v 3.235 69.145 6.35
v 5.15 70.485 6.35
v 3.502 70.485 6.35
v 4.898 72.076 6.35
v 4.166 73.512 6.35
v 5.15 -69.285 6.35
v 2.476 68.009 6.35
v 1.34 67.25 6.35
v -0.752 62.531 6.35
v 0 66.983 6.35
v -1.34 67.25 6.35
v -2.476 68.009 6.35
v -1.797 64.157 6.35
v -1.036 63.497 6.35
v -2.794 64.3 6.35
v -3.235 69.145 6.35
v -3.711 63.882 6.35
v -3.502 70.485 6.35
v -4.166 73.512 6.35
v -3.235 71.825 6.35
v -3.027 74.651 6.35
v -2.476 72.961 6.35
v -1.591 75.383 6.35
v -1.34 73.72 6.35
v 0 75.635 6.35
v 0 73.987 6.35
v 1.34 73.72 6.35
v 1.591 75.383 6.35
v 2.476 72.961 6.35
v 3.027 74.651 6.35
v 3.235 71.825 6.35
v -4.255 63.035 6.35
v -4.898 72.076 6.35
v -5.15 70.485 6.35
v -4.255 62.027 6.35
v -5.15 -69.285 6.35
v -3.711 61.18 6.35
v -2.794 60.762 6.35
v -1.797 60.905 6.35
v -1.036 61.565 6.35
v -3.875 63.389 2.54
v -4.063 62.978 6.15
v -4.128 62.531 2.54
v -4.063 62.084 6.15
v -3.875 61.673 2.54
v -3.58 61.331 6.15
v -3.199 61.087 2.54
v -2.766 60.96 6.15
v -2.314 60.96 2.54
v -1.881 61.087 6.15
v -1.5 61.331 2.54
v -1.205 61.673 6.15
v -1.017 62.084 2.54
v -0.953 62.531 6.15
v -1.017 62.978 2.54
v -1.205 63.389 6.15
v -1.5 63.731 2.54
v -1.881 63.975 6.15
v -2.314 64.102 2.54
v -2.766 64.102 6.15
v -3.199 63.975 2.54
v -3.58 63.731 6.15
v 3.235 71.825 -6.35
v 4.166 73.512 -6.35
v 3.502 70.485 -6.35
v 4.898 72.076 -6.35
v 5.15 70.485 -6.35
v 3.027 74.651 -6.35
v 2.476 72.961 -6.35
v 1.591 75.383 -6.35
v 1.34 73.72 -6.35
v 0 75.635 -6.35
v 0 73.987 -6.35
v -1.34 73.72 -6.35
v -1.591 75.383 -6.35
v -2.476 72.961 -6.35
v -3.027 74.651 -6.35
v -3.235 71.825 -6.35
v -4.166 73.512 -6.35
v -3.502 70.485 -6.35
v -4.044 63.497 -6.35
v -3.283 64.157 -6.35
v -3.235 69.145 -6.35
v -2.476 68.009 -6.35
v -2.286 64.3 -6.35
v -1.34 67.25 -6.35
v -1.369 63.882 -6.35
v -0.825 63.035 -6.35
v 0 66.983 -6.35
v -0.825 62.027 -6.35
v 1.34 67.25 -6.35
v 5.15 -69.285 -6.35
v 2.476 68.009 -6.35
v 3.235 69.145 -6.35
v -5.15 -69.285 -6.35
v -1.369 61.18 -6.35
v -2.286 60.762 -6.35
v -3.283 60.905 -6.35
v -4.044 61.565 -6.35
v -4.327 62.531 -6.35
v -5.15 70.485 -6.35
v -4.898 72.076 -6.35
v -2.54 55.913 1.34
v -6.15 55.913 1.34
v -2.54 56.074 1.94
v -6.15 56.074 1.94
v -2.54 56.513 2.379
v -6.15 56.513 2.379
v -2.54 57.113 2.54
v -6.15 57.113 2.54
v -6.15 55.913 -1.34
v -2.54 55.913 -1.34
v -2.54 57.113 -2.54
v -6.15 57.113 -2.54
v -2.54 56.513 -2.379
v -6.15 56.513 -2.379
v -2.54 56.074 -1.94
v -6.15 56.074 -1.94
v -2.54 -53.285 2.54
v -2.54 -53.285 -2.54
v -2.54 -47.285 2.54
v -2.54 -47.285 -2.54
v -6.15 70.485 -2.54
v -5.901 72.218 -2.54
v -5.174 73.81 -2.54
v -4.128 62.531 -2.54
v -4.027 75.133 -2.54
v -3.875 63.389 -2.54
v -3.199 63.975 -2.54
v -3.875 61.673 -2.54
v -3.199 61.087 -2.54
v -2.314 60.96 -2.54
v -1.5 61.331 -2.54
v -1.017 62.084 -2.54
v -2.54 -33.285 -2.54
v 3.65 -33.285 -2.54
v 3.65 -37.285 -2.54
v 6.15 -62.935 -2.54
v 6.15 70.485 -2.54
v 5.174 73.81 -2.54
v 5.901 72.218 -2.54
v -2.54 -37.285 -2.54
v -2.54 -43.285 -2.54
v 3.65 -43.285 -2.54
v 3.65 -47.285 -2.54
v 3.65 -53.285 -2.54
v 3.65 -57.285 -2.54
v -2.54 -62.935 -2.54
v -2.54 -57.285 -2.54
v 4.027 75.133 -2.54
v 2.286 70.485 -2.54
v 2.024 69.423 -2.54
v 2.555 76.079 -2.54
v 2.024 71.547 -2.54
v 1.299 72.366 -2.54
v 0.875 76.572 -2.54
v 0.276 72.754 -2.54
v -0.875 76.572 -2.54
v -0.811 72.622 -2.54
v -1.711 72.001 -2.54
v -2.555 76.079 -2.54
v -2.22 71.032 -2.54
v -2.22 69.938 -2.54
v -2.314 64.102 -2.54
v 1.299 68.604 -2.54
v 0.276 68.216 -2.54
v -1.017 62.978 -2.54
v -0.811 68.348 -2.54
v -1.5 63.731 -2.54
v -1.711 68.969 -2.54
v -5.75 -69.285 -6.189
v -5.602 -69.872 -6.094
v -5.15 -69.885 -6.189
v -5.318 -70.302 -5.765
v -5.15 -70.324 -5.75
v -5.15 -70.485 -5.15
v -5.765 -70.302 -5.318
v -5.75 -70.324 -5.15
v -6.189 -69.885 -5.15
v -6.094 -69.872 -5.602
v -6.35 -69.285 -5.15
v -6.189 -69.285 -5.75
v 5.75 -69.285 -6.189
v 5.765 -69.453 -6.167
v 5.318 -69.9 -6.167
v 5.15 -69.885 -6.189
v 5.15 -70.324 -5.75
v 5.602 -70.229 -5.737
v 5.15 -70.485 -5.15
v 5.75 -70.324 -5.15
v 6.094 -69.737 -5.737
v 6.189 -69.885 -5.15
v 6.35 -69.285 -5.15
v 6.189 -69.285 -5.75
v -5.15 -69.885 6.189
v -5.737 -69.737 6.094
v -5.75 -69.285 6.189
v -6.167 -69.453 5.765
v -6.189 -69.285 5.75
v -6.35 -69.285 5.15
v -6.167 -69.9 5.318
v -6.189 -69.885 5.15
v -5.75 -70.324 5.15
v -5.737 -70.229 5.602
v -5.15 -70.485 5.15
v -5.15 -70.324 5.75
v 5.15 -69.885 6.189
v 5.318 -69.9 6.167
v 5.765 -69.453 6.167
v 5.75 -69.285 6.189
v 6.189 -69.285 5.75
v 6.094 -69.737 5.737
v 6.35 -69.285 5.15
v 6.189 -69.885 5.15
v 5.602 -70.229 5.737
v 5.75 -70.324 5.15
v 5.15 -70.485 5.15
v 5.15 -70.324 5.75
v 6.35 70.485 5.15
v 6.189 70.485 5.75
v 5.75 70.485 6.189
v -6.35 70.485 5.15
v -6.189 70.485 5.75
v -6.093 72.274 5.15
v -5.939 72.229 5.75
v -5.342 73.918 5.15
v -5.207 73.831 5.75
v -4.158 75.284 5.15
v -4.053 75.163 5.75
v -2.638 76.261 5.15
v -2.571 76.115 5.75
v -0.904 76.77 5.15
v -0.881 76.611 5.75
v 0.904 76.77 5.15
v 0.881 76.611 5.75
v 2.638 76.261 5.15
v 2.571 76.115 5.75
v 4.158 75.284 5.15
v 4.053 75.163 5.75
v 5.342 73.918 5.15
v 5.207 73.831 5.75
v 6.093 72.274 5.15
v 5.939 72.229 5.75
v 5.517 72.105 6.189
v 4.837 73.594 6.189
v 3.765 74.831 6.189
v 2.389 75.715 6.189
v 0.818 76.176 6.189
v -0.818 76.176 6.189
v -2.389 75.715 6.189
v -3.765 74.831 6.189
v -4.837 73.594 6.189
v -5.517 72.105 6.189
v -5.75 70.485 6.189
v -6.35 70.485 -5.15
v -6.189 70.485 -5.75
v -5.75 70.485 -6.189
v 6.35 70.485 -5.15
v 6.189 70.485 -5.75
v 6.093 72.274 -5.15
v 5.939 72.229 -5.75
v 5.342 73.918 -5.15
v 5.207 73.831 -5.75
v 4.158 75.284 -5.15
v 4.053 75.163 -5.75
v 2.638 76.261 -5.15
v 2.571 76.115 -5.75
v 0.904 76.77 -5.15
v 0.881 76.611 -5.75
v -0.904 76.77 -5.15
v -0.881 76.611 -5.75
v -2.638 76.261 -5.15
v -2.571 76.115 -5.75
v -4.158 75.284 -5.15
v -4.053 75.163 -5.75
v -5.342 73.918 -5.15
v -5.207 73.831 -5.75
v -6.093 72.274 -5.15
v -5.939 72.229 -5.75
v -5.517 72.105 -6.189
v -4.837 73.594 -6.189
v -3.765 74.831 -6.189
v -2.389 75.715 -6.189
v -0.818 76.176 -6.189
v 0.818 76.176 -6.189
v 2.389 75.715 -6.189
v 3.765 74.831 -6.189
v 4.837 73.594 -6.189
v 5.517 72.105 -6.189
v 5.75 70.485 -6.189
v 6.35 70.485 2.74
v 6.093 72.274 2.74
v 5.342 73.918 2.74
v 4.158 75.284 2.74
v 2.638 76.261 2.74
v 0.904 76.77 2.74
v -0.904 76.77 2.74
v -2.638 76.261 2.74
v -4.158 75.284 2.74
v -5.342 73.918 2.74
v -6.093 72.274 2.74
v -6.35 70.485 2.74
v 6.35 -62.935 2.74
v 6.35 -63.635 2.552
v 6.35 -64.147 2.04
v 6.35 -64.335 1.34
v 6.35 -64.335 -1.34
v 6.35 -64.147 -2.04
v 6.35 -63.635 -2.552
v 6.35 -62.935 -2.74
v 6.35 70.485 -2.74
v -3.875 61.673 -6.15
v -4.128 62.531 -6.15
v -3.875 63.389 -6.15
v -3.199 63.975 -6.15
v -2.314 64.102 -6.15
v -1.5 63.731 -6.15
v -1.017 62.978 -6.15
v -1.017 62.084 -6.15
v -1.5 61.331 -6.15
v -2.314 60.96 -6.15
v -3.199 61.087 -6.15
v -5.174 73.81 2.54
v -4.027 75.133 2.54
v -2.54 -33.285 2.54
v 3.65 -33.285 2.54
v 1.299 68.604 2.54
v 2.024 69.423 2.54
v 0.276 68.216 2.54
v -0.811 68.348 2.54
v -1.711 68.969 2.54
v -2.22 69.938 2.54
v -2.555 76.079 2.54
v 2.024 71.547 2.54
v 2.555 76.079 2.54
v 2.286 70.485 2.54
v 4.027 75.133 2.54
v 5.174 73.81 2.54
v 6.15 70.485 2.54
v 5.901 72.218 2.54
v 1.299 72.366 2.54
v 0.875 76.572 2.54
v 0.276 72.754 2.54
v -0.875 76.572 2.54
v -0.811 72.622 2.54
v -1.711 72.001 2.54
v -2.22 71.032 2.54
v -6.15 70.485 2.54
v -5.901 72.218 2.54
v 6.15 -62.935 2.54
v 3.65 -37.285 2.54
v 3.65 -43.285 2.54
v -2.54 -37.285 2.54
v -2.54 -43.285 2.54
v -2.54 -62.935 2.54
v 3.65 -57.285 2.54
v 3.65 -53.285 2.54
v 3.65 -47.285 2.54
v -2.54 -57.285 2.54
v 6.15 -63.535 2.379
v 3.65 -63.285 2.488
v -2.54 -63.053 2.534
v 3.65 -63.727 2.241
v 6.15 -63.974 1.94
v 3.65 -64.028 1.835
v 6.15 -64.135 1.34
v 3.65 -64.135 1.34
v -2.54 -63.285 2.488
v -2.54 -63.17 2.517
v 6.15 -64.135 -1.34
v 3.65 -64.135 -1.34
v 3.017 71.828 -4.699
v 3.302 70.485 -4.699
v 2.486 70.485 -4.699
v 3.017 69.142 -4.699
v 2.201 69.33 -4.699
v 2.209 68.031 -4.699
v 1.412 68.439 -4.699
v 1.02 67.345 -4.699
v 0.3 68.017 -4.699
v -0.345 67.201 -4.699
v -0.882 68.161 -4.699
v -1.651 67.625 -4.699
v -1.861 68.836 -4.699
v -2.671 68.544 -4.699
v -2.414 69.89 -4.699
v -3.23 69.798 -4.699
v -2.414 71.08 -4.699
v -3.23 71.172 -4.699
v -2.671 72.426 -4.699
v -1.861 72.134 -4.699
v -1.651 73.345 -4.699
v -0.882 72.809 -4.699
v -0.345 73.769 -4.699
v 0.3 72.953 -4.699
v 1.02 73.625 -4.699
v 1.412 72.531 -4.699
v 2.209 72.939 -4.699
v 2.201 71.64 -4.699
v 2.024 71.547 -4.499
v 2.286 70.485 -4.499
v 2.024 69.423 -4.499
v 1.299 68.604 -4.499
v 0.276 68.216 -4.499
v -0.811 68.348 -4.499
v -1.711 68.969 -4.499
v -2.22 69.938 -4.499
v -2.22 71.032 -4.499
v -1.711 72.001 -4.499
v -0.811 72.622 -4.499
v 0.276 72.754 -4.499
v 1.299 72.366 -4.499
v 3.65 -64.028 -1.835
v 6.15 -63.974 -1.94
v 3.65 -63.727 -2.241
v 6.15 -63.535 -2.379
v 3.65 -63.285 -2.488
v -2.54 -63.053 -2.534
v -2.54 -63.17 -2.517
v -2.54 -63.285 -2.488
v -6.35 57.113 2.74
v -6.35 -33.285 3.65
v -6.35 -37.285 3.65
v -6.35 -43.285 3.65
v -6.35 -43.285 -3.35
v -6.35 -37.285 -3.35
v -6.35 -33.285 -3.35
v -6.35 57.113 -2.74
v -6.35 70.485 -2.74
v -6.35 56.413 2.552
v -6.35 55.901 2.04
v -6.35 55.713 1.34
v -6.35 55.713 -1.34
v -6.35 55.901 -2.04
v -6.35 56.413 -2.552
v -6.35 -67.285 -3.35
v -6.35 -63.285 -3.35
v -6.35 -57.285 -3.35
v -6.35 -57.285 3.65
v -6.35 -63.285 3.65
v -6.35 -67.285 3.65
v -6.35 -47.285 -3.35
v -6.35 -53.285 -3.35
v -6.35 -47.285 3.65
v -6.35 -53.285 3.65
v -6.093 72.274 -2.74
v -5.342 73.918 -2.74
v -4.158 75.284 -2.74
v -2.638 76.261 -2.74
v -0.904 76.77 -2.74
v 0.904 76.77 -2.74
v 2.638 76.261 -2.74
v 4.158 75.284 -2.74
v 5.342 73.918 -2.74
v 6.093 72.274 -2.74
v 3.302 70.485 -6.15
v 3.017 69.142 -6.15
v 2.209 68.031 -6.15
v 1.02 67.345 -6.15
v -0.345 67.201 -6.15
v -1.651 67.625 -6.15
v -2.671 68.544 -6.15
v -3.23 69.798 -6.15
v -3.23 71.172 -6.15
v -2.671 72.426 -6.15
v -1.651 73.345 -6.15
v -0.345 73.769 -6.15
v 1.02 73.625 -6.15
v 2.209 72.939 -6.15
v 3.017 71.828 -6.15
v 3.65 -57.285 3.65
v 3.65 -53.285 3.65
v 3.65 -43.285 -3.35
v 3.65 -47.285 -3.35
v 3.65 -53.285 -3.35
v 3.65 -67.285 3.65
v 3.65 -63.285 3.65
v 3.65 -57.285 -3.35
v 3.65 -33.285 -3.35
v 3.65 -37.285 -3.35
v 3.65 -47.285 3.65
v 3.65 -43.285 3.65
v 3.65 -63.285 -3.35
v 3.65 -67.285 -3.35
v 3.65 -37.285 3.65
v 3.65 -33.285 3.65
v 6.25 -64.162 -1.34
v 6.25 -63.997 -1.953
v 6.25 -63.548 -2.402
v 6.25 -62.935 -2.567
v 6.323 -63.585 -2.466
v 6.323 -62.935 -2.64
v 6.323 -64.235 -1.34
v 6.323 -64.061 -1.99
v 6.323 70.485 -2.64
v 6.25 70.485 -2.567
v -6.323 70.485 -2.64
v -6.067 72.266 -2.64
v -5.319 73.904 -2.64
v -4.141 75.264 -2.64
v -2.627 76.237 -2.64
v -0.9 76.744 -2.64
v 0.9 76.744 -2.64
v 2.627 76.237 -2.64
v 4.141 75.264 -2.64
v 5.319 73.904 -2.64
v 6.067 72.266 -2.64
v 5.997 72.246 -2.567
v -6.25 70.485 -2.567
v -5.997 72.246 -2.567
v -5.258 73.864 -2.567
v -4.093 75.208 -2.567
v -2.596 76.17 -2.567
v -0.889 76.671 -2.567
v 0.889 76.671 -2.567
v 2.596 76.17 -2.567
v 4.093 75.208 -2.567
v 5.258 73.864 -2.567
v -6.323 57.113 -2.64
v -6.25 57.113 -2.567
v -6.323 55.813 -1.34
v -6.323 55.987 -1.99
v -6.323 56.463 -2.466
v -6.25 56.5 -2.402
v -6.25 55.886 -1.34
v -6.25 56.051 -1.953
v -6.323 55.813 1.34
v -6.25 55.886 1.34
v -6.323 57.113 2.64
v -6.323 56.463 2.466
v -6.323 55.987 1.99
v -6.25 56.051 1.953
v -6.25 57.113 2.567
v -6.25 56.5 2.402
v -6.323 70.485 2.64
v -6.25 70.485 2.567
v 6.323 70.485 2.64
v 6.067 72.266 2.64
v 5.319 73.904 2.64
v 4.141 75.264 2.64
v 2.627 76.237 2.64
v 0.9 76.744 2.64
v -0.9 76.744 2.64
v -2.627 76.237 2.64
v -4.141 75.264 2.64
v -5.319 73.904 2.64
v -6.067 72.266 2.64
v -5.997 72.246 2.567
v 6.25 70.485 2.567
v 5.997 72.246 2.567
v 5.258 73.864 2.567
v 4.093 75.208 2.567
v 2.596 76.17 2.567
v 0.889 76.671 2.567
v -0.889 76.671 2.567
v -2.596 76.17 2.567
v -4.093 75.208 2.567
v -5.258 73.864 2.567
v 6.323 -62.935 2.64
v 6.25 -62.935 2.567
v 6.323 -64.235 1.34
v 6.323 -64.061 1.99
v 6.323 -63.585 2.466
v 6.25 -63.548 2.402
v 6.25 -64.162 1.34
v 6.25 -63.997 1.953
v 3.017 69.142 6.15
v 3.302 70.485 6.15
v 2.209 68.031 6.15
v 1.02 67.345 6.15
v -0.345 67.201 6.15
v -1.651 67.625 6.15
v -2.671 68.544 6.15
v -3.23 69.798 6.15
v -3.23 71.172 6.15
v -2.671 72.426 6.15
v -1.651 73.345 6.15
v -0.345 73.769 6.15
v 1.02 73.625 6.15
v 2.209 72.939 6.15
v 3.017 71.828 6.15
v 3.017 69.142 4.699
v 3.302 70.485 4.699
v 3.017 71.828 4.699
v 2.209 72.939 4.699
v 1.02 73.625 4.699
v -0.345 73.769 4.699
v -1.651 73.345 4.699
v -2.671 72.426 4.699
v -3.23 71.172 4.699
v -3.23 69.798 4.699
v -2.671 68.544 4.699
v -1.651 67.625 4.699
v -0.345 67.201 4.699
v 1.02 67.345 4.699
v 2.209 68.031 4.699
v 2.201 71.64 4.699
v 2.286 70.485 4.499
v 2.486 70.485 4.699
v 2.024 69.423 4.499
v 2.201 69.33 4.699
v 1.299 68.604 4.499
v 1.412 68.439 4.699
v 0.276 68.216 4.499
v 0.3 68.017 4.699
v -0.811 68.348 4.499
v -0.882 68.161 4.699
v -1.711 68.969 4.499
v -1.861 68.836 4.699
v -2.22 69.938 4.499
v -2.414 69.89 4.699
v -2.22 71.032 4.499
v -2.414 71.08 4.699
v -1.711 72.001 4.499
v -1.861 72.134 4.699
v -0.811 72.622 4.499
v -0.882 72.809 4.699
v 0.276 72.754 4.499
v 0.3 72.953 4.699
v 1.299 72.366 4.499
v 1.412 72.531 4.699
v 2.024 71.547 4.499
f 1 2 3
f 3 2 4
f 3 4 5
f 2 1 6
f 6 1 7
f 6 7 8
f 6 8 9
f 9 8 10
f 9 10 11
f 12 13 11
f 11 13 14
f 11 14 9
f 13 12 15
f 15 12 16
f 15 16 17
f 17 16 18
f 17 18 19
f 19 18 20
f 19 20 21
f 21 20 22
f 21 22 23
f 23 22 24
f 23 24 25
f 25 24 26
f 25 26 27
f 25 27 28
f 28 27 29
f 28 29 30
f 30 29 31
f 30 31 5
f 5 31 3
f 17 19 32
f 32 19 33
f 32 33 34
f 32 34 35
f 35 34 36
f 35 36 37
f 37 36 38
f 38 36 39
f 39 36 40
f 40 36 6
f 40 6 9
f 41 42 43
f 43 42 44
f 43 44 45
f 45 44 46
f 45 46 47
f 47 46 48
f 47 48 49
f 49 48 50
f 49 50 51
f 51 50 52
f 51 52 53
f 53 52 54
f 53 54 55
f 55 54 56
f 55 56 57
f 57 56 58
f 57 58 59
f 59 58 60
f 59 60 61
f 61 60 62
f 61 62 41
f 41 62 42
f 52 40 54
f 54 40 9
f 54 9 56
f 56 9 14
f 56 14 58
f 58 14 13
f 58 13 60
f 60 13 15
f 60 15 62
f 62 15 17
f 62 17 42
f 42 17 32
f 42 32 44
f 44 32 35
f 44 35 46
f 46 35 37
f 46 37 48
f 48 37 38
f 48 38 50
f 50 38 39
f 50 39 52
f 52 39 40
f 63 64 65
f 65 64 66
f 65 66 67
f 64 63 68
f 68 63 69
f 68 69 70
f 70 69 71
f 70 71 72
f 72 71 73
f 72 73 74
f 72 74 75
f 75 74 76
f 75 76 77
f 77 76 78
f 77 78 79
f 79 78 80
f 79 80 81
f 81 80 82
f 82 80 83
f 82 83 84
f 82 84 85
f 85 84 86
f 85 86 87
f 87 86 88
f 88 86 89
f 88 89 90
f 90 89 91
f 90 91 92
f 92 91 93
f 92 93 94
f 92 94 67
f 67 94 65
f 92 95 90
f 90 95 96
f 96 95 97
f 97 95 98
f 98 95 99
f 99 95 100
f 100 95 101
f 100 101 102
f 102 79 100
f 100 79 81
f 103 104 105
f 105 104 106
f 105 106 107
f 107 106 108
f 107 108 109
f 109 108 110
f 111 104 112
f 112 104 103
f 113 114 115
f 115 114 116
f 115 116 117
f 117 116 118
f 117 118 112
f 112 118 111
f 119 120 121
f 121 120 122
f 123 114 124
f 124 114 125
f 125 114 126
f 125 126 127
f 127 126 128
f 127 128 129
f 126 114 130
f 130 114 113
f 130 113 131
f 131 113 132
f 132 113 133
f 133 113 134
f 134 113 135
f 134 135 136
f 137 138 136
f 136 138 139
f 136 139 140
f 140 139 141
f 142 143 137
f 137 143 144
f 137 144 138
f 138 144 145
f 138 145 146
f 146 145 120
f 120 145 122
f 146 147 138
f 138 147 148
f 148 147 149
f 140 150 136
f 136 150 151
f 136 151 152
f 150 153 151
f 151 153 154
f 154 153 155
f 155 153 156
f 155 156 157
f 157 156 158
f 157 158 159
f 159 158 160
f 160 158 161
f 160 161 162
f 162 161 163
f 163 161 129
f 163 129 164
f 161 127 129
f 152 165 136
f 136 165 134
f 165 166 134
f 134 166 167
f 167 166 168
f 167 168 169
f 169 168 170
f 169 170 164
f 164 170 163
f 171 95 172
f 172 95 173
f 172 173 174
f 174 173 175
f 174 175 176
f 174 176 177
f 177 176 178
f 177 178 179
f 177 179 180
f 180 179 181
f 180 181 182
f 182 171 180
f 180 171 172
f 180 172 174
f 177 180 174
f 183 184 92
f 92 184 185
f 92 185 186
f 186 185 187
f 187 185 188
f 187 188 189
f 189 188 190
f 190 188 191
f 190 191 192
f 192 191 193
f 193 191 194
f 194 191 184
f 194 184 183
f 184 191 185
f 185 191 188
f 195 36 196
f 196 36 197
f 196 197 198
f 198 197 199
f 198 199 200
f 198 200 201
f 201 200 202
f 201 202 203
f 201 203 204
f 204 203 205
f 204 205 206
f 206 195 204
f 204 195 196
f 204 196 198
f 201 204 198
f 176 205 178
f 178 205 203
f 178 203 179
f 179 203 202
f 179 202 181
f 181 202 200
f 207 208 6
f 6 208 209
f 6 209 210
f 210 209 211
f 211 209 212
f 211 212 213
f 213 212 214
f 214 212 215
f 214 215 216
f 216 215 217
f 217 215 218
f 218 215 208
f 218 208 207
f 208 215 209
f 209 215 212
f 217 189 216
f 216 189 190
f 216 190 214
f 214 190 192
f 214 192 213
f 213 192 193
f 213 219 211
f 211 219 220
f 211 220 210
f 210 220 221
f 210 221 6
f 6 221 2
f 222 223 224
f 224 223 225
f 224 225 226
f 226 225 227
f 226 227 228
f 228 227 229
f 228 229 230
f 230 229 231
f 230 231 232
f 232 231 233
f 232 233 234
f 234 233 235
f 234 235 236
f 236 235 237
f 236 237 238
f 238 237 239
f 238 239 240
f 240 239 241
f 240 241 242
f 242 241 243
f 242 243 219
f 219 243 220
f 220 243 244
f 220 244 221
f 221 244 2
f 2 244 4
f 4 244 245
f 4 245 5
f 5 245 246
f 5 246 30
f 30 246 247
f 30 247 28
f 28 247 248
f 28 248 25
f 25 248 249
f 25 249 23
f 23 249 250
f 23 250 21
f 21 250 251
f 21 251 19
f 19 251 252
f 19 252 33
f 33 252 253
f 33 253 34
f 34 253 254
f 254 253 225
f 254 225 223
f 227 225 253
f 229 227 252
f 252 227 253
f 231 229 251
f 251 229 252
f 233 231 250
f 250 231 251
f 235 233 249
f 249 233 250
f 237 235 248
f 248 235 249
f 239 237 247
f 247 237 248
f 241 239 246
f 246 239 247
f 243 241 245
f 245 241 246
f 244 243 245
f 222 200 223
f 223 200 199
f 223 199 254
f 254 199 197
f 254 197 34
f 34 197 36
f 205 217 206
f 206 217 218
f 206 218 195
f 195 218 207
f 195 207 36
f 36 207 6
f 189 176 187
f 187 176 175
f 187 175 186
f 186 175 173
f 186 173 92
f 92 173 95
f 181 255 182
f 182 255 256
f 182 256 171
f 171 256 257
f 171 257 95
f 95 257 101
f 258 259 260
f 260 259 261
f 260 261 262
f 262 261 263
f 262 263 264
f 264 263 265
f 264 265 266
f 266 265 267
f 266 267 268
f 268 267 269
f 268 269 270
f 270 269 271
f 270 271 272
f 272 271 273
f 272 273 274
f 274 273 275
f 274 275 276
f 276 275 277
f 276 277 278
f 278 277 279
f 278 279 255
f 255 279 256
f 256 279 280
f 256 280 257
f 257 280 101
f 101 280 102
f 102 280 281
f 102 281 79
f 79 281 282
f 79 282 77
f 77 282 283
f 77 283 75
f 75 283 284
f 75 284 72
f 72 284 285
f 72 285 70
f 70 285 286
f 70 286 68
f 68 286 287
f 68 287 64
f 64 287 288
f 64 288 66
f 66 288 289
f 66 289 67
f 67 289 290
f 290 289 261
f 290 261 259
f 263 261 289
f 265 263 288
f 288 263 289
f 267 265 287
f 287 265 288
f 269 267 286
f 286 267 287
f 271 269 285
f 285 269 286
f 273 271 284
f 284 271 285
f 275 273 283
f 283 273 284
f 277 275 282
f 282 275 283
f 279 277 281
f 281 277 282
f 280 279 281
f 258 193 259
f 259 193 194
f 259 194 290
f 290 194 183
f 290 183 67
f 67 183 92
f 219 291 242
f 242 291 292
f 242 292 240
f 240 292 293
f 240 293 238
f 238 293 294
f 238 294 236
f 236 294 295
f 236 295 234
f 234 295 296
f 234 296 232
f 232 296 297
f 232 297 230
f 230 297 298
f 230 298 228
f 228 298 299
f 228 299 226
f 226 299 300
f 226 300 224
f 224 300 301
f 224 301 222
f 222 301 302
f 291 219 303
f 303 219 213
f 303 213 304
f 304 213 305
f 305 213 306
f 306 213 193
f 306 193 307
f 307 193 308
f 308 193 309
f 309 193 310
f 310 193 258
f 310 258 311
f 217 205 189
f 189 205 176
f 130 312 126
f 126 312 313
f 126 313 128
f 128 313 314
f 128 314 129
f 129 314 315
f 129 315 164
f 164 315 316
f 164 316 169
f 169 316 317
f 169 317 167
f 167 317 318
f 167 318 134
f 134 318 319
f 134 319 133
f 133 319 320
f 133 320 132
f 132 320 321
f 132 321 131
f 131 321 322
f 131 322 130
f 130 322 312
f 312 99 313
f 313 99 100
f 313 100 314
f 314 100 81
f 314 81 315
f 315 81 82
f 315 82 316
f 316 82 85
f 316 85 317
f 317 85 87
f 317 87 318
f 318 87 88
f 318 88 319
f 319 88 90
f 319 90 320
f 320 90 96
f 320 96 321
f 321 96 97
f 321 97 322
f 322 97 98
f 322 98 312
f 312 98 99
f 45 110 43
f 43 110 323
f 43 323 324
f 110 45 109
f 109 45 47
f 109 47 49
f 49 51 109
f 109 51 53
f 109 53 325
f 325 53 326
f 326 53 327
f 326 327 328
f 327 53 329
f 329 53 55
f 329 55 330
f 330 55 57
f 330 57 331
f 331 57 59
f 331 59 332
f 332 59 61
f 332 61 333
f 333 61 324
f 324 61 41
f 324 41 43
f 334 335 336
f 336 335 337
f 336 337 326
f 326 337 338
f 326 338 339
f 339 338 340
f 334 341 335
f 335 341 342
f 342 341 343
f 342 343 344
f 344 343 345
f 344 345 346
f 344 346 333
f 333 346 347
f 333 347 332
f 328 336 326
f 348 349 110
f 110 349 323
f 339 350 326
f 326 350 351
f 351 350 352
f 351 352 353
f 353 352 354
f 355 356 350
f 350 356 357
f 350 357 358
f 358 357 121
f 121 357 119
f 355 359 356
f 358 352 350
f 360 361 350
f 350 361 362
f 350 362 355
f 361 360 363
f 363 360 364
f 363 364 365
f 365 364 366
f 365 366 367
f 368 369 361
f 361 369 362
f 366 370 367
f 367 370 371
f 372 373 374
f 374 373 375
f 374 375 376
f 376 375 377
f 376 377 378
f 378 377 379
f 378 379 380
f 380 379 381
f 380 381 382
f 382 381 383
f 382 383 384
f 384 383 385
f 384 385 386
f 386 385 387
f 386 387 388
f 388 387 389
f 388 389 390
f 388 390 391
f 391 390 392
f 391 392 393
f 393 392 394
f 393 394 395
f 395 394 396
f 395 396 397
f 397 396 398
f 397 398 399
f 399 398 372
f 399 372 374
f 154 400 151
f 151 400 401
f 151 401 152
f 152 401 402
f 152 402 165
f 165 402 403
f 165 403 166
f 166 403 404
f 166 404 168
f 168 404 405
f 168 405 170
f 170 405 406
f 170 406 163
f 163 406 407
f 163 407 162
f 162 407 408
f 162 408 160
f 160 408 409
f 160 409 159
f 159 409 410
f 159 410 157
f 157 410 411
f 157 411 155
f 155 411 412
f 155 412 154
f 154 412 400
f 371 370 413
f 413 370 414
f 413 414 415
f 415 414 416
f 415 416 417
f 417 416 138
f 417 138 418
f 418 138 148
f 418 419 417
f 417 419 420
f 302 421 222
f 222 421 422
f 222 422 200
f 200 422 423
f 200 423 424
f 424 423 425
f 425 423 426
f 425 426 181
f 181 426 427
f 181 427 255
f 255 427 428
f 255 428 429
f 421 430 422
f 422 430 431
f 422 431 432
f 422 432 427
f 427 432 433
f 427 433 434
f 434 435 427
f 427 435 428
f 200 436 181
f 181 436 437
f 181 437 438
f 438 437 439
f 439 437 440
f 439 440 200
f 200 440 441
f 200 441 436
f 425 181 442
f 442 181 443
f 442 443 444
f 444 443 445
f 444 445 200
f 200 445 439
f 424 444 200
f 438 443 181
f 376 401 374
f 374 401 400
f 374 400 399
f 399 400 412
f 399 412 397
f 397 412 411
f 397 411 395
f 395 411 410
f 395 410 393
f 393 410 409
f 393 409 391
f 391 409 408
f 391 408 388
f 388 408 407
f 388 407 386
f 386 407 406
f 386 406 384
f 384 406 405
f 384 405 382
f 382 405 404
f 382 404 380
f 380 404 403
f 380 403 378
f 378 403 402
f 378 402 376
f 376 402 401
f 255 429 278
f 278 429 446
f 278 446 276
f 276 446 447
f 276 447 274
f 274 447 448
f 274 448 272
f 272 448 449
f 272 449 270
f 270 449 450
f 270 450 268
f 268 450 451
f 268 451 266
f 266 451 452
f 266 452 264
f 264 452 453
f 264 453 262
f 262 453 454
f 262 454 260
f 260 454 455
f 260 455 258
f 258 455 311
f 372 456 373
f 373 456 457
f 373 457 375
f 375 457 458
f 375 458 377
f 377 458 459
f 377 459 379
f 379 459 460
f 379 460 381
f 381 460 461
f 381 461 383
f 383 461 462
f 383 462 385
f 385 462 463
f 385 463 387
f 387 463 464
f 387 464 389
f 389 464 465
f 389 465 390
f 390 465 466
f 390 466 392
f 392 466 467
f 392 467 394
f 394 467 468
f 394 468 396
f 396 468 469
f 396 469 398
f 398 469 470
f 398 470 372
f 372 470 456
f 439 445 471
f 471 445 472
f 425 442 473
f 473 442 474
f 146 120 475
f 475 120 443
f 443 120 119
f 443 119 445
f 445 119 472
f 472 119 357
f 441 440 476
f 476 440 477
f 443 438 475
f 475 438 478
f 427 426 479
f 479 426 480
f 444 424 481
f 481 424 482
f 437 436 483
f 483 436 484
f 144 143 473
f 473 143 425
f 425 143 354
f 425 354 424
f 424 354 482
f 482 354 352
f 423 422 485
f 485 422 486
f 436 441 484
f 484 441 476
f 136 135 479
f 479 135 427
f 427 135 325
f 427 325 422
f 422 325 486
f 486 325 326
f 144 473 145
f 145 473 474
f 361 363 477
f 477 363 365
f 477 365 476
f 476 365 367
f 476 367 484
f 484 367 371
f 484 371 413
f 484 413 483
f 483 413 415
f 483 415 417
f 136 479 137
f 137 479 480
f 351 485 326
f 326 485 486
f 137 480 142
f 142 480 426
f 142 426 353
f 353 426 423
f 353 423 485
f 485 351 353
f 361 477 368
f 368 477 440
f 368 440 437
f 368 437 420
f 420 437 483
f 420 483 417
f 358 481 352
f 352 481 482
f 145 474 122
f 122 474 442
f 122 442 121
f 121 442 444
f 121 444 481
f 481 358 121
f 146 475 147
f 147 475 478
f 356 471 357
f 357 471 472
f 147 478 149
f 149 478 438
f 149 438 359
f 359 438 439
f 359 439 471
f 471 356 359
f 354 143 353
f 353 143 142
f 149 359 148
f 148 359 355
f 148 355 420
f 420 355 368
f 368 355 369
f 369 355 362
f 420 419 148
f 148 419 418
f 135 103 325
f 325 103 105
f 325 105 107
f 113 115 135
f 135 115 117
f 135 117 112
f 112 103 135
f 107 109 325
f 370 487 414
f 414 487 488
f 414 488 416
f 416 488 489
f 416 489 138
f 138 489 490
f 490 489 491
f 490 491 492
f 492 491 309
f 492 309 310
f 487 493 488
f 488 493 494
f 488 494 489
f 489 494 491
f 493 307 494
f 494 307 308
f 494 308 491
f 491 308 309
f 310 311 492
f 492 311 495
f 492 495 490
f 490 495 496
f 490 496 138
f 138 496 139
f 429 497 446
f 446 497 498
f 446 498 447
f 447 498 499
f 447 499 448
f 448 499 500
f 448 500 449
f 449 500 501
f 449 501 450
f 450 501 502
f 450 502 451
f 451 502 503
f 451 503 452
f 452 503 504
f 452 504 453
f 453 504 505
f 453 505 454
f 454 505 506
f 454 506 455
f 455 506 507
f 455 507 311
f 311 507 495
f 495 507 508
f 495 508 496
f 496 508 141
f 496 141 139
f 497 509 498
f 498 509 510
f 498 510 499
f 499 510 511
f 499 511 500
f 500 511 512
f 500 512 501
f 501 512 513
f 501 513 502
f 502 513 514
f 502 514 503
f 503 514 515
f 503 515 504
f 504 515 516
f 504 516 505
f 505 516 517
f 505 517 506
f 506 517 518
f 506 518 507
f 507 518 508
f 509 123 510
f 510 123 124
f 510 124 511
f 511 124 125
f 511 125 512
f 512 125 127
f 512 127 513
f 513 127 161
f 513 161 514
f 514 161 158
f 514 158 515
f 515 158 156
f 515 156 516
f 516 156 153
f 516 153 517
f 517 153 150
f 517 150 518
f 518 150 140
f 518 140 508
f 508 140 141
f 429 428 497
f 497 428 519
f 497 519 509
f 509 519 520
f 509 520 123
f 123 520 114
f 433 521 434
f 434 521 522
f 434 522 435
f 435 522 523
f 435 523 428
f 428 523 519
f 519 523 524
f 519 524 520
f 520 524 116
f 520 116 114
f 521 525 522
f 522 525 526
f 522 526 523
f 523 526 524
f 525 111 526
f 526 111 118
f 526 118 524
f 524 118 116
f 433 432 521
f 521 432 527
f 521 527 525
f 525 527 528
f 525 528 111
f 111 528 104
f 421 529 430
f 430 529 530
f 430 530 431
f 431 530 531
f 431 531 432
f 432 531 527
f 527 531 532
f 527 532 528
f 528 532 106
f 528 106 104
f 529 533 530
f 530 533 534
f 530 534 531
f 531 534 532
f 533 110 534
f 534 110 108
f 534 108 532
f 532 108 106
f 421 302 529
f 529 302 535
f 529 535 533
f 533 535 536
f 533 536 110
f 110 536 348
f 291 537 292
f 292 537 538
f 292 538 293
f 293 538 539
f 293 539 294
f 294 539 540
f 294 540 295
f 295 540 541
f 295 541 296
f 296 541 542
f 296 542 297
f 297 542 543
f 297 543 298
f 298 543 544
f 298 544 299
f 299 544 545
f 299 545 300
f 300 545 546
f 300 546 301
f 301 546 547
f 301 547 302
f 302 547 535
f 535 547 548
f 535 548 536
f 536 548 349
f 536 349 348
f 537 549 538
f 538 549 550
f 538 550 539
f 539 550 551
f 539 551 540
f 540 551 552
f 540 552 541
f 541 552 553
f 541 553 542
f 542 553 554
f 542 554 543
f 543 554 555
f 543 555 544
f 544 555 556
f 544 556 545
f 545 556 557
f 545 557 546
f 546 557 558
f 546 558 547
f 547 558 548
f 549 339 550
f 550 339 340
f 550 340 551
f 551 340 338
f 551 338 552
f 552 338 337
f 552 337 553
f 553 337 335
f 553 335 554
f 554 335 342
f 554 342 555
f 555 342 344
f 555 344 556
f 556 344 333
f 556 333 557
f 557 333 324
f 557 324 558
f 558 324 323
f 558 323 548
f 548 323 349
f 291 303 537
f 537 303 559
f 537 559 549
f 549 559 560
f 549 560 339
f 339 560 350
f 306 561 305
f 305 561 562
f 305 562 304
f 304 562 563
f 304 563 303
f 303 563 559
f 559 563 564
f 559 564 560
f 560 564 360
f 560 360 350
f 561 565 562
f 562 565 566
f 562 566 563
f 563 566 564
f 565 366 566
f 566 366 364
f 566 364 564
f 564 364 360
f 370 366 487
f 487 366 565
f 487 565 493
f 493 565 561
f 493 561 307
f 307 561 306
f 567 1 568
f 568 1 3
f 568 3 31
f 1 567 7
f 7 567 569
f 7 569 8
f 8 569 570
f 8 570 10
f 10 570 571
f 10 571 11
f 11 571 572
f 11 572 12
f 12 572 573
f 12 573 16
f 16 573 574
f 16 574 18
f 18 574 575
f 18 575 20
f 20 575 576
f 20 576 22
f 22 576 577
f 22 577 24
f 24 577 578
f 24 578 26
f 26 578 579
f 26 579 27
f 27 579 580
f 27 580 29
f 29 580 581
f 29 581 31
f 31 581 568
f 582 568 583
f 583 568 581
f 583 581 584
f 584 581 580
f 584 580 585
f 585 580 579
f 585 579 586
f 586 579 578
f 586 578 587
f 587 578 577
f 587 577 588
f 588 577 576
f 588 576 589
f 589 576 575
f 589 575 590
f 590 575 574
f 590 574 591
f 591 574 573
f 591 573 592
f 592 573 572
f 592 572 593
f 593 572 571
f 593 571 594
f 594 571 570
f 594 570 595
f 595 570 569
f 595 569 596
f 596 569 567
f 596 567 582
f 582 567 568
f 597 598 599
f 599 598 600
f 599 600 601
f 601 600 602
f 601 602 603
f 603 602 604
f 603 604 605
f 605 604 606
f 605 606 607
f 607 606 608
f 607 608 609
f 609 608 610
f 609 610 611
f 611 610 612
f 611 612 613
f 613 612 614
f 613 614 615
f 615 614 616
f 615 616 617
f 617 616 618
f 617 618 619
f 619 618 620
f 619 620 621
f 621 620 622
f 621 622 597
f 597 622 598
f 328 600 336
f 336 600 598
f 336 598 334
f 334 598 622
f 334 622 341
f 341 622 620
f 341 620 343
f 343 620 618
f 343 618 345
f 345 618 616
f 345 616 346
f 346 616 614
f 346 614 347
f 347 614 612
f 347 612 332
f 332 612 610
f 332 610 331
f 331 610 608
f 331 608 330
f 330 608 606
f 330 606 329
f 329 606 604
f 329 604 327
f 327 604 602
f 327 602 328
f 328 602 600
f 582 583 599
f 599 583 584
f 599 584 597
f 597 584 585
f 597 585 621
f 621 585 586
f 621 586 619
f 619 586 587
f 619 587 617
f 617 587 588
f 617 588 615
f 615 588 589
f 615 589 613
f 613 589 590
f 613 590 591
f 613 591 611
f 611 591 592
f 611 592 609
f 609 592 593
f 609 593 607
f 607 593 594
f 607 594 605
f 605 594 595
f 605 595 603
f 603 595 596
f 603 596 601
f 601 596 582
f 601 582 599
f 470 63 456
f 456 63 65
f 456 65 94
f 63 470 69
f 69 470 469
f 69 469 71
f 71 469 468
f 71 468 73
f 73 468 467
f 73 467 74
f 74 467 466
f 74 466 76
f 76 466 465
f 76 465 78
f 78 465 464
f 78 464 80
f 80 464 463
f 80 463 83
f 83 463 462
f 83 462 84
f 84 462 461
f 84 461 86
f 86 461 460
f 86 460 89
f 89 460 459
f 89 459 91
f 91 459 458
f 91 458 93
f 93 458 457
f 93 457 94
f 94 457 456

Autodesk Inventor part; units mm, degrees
ref_plane "YZ Plane" through (0, 0, 0) normal (1, 0, 0) x (0, 1, 0)
ref_plane "XZ Plane" through (0, 0, 0) normal (0, 1, 0) x (-1, 0, 0)
sketch "Sketch1" plane through (0, 0, 0) normal (0, 0, 1) x (1, 0, 0)
  line L0 (6.35, 70.485) -> (6.35, -70.485)
  line L1 (6.35, -70.485) -> (-6.35, -70.485)
  line L2 (-6.35, -70.485) -> (-6.35, 70.485)
  line L3 (-6.35, 70.485) -> (6.35, -70.485) construction
  line L4 (6.35, 70.485) -> (-6.35, -70.485) construction
  arc A0 (6.2478, 69.3501) -> (-6.2478, 69.3501) centre (0, 70.485) ccw
  circle A1 centre (0, 70.485) radius 2.286
  point P0 (0, 0)
  point P1 (-6.35, 70.485)
  dimension "d0" = 12.7
  dimension "d1" = 140.97
  dimension "d2" = 4.572
extrude "Extrusion1" add sketch "Sketch1" along normal mid plane 12.7
sketch "Sketch2" plane through (6.35, -70.485, 6.35) normal (1, 0, 0) x (0, 0, -1)
  line L0 (3.81, 6.35) -> (8.89, 6.35)
  line L1 (8.89, 6.35) -> (8.89, 126.398)
  line L2 (8.89, 126.398) -> (3.81, 126.398)
  line L3 (3.81, 126.398) -> (3.81, 6.35)
  line L4 (3.81, 6.35) -> (8.89, 126.398) construction
  line L5 (8.89, 6.35) -> (3.81, 126.398) construction
  line L6 (0, 0) -> (12.7, 0) projected
  line L7 (12.7, 140.97) -> (12.7, 0) projected
  line L8 (3.81, 126.398) -> (8.89, 126.398)
  line L9 (8.89, 126.398) -> (8.89, 150.398)
  line L10 (8.89, 150.398) -> (3.81, 150.398)
  line L11 (3.81, 150.398) -> (3.81, 126.398)
  point P0 (6.35, 70.485)
  point P1 (6.35, 66.374)
  dimension "d5" = 6.35
  dimension "d6" = 5.08
  dimension "d7" = 3.81
  dimension "d8" = 120.048
  dimension "d9" = 5.08
  dimension "d10" = 24
extrude "Extrusion2" cut sketch "Sketch2" against normal blind 8.89 contours L3 L2 L1 L0
extrude "Extrusion3" cut sketch "Sketch2" against normal through all contours L11 L10 L9 L2
sketch "Sketch3" plane through (0, 0, 6.35) normal (0, 0, 1) x (1, 0, 0)
  circle A0 centre (0, 70.485) radius 2.286 projected
  circle A1 centre (-2.54, 62.531) radius 1.5875
  point P0 (0, 0)
  dimension "d15" = 3.175
  dimension "d16" = 7.954
  dimension "d17" = 2.54
extrude "Extrusion4" cut sketch "Sketch3" against normal through all contours A1
fillet "Fillet1" radius 1.2 14 edges at (-4.445, 55.913, -2.54) (-4.445, 55.913, 2.54) (0, 76.835, 6.35) (-6.35, 0, 6.35) (6.35, 0, 6.35) (0, 76.835, -6.35) (-6.35, 0, -6.35) (6.35, 0, -6.35) (6.35, -70.485, 0) (0, -70.485, 6.35) (-6.35, -70.485, 0) (0, -70.485, -6.35) (1.905, -64.135, -2.54) (1.905, -64.135, 2.54)
sketch "Sketch5" plane through (0, 0, 6.35) normal (0, 0, 1) x (1, 0, 0)
  circle A0 centre (0, 70.485) radius 2.286 projected
  circle A1 centre (0, 70.485) radius 3.302
  point P0 (0, 0)
  dimension "d25" = 6.604
extrude "Extrusion6" cut sketch "Sketch5" against normal blind 1.651
ref_plane "Work Plane1" through (0, 0, 0) normal (0, 0, 1) x (1, 0, 0)
mirror "Mirror1" about plane through (0, 0, 0) normal (0, 0, 1) of "Extrusion6"
sketch "Sketch6" plane through (-6.35, -69.285, 5.15) normal (-1, 0, 0) x (0, 0, 1)
  line L0 (-1.5, 2) -> (-8.5, 2)
  line L1 (-8.5, 2) -> (-8.5, 6)
  line L2 (-8.5, 6) -> (-1.5, 6)
  line L3 (-1.5, 6) -> (-1.5, 2)
  line L4 (-8.5, 16) -> (-1.5, 16)
  line L5 (-8.5, 12) -> (-8.5, 16)
  line L6 (-1.5, 12) -> (-8.5, 12)
  line L7 (-1.5, 16) -> (-1.5, 12)
  line L8 (-8.5, 26) -> (-1.5, 26)
  line L9 (-8.5, 22) -> (-8.5, 26)
  line L10 (-1.5, 22) -> (-8.5, 22)
  line L11 (-1.5, 26) -> (-1.5, 22)
  line L12 (-8.5, 36) -> (-1.5, 36)
  line L13 (-8.5, 32) -> (-8.5, 36)
  line L14 (-1.5, 32) -> (-8.5, 32)
  line L15 (-1.5, 36) -> (-1.5, 32)
  line L16 (0, 0) -> (-10.3, 0) projected
  line L17 (0, 139.77) -> (0, 0) projected
  point P0 (-5.15, 69.285)
  dimension "d32" = 7
  dimension "d33" = 4
  dimension "d34" = 10
  dimension "d36" = 2
  dimension "d37" = 1.5
extrude "Extrusion7" cut sketch "Sketch6" against normal blind 10
fillet "Fillet2" radius 0.2 8 edges at (6.35, -63.7835, -2.1885) (6.35, -64.135, 0) (6.35, -63.7835, 2.1885) (6.35, 3.775, 2.54) (-6.35, 56.2645, 2.1885) (-6.35, 55.913, 0) (-6.35, 56.2645, -2.1885) (6.35, 3.775, -2.54)
chamfer "Chamfer1" distance 0.2 angle 45 6 edges at (-3.302, 70.485, 6.35) (-2.286, 70.485, 4.699) (-3.302, 70.485, -6.35) (-2.286, 70.485, -4.699) (-4.1275, 62.531, -6.35) (-4.1275, 62.531, 6.35)
properties part number "Body_Right"
